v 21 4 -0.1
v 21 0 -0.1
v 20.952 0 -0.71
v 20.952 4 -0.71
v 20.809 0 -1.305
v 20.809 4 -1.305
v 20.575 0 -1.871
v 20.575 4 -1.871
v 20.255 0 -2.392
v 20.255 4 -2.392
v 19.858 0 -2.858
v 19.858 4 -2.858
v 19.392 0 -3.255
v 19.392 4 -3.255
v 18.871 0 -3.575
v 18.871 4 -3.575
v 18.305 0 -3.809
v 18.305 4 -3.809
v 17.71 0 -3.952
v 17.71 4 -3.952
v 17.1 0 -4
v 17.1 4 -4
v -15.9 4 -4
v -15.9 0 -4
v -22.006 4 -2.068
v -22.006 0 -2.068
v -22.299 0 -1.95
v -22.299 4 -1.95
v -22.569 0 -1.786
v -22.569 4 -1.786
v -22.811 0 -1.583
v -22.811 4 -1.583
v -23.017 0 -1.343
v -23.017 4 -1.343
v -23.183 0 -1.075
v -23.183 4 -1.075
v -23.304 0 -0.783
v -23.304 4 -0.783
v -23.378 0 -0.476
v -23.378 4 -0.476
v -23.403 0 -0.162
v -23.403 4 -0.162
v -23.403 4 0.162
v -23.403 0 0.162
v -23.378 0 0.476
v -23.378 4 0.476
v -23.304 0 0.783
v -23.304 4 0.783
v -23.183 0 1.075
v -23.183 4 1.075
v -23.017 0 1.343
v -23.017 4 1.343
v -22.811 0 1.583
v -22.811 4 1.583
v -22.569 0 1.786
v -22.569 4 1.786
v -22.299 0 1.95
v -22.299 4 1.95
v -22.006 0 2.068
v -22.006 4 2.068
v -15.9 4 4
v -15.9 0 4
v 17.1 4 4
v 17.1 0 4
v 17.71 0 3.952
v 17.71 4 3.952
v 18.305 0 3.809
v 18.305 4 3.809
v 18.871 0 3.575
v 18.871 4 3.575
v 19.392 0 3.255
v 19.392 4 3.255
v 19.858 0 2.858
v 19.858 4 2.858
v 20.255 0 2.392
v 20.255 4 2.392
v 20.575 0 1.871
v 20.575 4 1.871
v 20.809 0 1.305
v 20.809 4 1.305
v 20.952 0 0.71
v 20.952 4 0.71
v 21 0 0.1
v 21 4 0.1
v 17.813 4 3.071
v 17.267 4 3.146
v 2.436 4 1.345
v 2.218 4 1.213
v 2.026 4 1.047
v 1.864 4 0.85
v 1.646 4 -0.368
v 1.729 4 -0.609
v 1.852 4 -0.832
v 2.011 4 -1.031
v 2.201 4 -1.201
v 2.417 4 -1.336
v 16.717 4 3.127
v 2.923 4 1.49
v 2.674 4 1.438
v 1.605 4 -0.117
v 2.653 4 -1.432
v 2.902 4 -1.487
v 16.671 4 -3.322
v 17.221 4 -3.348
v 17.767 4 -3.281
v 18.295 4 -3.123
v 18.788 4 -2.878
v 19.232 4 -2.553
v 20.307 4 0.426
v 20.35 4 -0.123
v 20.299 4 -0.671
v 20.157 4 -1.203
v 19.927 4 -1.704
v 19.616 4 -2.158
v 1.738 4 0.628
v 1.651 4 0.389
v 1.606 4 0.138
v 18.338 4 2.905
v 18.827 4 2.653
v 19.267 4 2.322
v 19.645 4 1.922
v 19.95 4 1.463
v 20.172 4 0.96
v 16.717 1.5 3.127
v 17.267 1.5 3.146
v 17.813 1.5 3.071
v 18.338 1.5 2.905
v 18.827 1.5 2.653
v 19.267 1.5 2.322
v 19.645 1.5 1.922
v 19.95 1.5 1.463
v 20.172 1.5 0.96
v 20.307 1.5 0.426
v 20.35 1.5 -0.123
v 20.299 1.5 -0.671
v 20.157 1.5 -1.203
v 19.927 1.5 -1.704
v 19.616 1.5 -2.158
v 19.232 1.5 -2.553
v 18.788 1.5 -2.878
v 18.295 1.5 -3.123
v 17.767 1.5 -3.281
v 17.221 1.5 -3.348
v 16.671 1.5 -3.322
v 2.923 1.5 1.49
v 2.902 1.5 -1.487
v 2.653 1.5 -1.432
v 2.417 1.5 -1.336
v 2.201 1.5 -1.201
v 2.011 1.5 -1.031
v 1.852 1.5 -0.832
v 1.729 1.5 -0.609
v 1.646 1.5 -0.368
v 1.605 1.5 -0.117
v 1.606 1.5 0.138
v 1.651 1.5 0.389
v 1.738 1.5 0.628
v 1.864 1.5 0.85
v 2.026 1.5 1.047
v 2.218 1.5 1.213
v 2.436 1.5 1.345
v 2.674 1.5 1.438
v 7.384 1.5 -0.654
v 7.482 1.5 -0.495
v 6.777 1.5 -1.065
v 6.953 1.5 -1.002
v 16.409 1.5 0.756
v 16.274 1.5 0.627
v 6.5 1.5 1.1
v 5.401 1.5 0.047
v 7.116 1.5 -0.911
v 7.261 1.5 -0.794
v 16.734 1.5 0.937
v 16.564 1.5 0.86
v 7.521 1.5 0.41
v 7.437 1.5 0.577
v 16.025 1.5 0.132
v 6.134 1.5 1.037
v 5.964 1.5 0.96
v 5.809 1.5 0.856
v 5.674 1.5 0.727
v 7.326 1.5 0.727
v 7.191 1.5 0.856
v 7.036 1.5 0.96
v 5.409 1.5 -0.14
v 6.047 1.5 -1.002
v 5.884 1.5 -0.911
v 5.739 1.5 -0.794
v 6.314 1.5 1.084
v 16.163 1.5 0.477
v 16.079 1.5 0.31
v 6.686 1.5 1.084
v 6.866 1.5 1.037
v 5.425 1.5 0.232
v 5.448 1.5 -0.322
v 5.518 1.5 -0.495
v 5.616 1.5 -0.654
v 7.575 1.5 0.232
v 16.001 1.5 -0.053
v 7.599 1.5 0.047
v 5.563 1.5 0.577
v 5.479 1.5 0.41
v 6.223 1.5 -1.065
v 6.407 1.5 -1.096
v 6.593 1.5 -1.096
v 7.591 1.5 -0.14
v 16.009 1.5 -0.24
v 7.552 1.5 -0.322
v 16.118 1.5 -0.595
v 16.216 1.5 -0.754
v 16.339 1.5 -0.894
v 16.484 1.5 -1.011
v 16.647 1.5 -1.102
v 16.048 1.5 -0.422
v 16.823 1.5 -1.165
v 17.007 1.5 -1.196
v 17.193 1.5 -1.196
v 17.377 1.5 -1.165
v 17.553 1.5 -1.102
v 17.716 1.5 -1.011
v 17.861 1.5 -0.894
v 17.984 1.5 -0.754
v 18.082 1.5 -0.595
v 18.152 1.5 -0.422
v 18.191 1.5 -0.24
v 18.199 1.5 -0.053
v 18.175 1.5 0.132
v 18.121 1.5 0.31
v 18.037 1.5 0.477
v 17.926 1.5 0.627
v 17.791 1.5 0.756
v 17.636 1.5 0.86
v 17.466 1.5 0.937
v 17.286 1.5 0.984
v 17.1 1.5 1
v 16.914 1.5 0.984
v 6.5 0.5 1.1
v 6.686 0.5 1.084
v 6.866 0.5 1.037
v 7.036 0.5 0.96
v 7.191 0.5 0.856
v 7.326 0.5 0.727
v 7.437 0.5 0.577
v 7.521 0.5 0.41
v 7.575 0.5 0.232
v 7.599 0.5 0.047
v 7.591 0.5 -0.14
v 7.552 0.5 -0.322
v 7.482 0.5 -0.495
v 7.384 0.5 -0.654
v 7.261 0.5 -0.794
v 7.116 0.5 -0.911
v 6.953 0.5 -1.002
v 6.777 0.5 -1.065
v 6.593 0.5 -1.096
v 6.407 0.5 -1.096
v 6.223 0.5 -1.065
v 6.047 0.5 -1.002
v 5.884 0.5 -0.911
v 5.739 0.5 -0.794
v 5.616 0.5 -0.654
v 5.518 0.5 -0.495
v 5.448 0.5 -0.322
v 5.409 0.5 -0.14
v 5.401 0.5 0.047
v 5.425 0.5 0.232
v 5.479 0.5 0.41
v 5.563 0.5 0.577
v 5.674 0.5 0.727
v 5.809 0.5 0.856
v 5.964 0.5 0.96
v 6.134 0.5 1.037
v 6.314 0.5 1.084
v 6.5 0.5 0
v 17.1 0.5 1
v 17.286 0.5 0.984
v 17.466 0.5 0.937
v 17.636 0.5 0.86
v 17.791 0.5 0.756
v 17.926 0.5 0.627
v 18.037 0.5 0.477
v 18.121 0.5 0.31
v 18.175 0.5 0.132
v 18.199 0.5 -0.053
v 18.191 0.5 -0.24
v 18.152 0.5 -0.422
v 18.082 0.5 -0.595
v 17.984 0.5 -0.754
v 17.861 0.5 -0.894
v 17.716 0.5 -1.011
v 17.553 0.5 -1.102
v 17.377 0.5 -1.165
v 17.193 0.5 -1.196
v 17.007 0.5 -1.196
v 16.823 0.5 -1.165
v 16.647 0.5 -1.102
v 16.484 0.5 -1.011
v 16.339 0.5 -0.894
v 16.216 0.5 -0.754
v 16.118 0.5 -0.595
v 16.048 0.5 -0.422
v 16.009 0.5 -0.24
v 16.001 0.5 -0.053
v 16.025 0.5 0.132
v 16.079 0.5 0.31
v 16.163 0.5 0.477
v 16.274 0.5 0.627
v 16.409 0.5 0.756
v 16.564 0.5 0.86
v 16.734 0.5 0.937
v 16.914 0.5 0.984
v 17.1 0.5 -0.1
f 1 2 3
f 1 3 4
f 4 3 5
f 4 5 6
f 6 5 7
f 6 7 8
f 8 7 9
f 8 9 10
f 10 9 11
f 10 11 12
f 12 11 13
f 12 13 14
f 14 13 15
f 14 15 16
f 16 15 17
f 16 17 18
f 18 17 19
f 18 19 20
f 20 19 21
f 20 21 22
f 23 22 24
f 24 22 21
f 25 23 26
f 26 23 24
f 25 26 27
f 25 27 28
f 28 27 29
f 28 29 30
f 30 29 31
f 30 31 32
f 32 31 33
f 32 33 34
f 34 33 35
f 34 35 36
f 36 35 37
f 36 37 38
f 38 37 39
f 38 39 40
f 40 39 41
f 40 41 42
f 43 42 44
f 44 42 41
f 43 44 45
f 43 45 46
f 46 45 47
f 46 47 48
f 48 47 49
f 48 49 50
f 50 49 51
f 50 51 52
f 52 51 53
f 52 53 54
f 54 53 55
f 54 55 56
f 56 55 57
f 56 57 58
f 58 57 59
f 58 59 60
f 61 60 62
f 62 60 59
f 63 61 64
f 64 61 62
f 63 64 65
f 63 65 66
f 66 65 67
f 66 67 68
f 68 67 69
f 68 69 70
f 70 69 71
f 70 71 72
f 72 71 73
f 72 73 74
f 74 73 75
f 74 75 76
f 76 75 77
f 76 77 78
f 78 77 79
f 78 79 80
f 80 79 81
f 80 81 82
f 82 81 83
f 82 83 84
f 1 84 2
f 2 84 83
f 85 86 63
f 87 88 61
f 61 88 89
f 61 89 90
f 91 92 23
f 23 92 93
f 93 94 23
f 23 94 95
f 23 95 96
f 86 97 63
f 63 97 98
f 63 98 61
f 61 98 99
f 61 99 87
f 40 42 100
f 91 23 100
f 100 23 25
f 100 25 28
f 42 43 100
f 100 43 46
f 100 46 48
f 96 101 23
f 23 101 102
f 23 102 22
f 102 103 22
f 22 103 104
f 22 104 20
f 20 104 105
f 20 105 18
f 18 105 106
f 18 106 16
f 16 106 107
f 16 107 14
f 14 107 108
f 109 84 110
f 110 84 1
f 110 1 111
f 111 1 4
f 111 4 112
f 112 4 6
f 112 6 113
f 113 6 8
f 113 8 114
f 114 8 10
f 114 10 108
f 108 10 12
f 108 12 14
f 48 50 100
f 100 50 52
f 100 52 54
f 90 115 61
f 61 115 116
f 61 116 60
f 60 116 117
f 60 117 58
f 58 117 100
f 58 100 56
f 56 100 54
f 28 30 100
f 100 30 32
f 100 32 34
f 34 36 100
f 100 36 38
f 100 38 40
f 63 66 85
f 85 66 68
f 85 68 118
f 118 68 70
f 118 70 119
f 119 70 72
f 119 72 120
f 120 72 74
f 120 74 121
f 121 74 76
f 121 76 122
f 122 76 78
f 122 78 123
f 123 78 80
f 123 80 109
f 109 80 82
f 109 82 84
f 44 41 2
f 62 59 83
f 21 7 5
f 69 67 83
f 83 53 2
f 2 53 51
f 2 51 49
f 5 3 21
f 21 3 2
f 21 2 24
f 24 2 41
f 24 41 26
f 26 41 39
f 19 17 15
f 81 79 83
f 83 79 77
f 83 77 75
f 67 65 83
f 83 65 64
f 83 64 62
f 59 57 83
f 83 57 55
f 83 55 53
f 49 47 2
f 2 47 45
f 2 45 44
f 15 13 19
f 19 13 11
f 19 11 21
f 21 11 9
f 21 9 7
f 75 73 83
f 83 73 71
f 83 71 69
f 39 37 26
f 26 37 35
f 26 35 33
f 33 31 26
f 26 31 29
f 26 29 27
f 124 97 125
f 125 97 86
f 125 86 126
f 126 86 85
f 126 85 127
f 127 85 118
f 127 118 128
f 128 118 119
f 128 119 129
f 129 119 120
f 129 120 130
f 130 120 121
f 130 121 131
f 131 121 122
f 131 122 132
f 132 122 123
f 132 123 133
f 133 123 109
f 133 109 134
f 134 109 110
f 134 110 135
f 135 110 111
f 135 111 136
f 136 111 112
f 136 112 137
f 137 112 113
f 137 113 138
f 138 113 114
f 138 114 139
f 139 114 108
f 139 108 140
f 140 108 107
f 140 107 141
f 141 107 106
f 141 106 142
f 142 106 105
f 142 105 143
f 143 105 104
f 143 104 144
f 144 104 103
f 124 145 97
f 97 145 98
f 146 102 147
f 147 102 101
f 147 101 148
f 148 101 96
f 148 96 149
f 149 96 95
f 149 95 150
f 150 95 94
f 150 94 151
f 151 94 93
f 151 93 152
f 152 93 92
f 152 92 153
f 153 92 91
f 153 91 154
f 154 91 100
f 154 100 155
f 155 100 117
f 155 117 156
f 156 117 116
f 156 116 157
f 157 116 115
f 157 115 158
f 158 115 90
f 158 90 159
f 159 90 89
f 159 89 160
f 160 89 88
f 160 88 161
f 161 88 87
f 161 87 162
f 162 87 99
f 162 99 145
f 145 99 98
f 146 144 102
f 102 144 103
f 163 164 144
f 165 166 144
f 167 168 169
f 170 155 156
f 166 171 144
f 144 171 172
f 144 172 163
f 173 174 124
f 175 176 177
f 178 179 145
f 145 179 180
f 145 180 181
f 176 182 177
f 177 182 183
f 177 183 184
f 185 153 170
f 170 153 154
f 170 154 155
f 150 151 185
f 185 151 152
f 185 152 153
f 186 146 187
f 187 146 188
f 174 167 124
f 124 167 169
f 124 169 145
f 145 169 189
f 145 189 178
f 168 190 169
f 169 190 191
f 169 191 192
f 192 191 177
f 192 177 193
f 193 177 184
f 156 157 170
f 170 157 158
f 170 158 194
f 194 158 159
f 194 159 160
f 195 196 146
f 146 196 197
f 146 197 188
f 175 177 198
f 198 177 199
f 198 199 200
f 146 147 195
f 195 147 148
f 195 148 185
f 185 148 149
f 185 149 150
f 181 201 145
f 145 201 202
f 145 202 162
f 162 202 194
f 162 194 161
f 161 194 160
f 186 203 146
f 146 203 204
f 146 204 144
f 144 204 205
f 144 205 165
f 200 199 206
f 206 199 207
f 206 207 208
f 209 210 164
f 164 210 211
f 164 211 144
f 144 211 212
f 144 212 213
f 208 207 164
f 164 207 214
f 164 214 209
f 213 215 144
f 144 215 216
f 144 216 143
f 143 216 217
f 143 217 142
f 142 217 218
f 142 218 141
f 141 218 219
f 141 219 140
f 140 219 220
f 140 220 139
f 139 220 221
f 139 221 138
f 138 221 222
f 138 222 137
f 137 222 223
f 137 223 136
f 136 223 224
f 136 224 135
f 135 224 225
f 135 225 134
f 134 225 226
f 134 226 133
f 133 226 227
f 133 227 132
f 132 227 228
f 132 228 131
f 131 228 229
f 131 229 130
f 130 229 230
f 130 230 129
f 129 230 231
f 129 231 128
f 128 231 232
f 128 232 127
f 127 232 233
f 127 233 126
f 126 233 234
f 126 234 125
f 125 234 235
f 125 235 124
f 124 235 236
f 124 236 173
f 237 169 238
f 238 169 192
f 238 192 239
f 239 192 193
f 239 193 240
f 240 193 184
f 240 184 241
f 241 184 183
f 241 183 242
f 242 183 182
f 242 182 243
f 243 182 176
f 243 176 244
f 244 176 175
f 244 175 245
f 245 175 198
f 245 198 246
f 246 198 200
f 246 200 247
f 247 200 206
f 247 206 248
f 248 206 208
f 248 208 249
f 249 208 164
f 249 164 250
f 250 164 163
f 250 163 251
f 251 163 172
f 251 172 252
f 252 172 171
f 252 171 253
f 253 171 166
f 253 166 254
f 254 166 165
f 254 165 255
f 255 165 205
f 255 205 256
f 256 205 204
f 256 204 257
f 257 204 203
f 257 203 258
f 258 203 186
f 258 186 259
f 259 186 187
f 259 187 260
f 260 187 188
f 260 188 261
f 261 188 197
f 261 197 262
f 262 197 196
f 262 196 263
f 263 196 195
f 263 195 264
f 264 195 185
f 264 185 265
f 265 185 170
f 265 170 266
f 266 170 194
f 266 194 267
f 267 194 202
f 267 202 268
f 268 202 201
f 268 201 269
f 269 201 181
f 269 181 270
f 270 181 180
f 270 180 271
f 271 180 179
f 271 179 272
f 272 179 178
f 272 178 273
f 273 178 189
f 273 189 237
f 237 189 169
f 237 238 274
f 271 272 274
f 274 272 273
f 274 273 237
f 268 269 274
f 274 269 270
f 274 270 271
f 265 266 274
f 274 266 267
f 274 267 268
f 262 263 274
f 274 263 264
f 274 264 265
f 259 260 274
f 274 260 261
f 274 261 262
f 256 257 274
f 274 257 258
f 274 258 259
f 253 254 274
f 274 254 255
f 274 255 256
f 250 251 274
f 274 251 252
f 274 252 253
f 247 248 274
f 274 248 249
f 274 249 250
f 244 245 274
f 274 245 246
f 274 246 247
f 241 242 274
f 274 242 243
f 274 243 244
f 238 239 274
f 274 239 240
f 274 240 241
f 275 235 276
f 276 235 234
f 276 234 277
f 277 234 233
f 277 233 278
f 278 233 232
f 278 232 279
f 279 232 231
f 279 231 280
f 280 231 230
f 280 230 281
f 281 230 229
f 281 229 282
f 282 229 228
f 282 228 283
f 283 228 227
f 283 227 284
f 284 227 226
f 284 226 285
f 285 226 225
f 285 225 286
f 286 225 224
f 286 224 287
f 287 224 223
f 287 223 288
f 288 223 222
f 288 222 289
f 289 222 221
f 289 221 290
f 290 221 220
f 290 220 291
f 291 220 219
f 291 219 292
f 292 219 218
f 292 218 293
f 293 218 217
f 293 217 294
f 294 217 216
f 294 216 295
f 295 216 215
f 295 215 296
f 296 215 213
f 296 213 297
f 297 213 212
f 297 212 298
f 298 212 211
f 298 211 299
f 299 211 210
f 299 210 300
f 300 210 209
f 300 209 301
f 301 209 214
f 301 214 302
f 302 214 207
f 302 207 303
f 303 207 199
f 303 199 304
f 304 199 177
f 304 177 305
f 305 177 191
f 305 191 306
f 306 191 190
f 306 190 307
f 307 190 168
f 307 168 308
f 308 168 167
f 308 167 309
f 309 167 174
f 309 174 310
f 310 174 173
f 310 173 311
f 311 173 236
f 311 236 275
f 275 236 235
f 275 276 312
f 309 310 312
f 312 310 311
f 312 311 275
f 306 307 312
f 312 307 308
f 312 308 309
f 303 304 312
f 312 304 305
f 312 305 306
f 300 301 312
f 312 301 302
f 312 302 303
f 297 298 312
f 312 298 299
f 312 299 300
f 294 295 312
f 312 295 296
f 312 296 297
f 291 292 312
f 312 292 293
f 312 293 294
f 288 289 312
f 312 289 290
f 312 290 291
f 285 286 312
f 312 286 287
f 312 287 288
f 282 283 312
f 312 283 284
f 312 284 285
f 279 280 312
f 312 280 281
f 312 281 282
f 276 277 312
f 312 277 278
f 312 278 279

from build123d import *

# Parameters (mm, degrees)
EXTRUDE_1_DEPTH     = 4
CUT_EXTRUDE_1_DEPTH = 2.5
SKETCH_4_R          = 1.1
CUT_EXTRUDE_2_DEPTH = 1


with BuildPart() as part:
    # 草图1 → 凸台-拉伸1 (new body)
    with BuildSketch(Plane(origin=(0, 0, 0), x_dir=(1, 0, 0), z_dir=(0, 1, 0))):
        with BuildLine():
            Line((-22.006488129, 2.068420622), (-15.9, 4))
            Line((-15.9, 4), (17.1, 4))
            ThreePointArc((17.1, 4), (19.857716447, 2.857716447), (21, 0.1))
            Line((21, 0.1), (21, -0.1))
            ThreePointArc((21, -0.1), (19.857716447, -2.857716447), (17.1, -4))
            Line((17.1, -4), (-15.9, -4))
            Line((-15.9, -4), (-22.006488129, -2.068420622))
            ThreePointArc((-22.006488129, -2.068420622), (-23.016748562, -1.343417075), (-23.403312634, -0.161543771))
            Line((-23.403312634, -0.161543771), (-23.403312634, 0.161543771))
            ThreePointArc((-23.403312634, 0.161543771), (-23.016748562, 1.343417075), (-22.006488129, 2.068420622))
        make_face()
    extrude(amount=EXTRUDE_1_DEPTH)

    # 草图2 → 切除-拉伸1 (cut)
    with BuildSketch(Plane(origin=(0, 4, 0), x_dir=(1, 0, 0), z_dir=(0, 1, 0))):
        with BuildLine():
            Line((2.901879582, 1.486858534), (16.670739094, 3.321526824))
            ThreePointArc((16.670739094, 3.321526824), (20.349917095, 0.123213694), (16.716802358, -3.127330099))
            Line((16.716802358, -3.127330099), (2.92313955, -1.489536969))
            ThreePointArc((2.92313955, -1.489536969), (1.600038264, -0.010714012), (2.901879582, 1.486858534))
        make_face()
    extrude(amount=-CUT_EXTRUDE_1_DEPTH, mode=Mode.SUBTRACT)

    # 草图4 → 切除-拉伸2 (cut)
    with BuildSketch(Plane(origin=(0, 1.5, 0), x_dir=(1, 0, 0), z_dir=(0, 1, 0))):
        with Locations((17.1, 0.1)):
            Circle(SKETCH_4_R)
        with Locations((6.5, 0)):
            Circle(SKETCH_4_R)
    extrude(amount=-CUT_EXTRUDE_2_DEPTH, mode=Mode.SUBTRACT)


solid = part.part
